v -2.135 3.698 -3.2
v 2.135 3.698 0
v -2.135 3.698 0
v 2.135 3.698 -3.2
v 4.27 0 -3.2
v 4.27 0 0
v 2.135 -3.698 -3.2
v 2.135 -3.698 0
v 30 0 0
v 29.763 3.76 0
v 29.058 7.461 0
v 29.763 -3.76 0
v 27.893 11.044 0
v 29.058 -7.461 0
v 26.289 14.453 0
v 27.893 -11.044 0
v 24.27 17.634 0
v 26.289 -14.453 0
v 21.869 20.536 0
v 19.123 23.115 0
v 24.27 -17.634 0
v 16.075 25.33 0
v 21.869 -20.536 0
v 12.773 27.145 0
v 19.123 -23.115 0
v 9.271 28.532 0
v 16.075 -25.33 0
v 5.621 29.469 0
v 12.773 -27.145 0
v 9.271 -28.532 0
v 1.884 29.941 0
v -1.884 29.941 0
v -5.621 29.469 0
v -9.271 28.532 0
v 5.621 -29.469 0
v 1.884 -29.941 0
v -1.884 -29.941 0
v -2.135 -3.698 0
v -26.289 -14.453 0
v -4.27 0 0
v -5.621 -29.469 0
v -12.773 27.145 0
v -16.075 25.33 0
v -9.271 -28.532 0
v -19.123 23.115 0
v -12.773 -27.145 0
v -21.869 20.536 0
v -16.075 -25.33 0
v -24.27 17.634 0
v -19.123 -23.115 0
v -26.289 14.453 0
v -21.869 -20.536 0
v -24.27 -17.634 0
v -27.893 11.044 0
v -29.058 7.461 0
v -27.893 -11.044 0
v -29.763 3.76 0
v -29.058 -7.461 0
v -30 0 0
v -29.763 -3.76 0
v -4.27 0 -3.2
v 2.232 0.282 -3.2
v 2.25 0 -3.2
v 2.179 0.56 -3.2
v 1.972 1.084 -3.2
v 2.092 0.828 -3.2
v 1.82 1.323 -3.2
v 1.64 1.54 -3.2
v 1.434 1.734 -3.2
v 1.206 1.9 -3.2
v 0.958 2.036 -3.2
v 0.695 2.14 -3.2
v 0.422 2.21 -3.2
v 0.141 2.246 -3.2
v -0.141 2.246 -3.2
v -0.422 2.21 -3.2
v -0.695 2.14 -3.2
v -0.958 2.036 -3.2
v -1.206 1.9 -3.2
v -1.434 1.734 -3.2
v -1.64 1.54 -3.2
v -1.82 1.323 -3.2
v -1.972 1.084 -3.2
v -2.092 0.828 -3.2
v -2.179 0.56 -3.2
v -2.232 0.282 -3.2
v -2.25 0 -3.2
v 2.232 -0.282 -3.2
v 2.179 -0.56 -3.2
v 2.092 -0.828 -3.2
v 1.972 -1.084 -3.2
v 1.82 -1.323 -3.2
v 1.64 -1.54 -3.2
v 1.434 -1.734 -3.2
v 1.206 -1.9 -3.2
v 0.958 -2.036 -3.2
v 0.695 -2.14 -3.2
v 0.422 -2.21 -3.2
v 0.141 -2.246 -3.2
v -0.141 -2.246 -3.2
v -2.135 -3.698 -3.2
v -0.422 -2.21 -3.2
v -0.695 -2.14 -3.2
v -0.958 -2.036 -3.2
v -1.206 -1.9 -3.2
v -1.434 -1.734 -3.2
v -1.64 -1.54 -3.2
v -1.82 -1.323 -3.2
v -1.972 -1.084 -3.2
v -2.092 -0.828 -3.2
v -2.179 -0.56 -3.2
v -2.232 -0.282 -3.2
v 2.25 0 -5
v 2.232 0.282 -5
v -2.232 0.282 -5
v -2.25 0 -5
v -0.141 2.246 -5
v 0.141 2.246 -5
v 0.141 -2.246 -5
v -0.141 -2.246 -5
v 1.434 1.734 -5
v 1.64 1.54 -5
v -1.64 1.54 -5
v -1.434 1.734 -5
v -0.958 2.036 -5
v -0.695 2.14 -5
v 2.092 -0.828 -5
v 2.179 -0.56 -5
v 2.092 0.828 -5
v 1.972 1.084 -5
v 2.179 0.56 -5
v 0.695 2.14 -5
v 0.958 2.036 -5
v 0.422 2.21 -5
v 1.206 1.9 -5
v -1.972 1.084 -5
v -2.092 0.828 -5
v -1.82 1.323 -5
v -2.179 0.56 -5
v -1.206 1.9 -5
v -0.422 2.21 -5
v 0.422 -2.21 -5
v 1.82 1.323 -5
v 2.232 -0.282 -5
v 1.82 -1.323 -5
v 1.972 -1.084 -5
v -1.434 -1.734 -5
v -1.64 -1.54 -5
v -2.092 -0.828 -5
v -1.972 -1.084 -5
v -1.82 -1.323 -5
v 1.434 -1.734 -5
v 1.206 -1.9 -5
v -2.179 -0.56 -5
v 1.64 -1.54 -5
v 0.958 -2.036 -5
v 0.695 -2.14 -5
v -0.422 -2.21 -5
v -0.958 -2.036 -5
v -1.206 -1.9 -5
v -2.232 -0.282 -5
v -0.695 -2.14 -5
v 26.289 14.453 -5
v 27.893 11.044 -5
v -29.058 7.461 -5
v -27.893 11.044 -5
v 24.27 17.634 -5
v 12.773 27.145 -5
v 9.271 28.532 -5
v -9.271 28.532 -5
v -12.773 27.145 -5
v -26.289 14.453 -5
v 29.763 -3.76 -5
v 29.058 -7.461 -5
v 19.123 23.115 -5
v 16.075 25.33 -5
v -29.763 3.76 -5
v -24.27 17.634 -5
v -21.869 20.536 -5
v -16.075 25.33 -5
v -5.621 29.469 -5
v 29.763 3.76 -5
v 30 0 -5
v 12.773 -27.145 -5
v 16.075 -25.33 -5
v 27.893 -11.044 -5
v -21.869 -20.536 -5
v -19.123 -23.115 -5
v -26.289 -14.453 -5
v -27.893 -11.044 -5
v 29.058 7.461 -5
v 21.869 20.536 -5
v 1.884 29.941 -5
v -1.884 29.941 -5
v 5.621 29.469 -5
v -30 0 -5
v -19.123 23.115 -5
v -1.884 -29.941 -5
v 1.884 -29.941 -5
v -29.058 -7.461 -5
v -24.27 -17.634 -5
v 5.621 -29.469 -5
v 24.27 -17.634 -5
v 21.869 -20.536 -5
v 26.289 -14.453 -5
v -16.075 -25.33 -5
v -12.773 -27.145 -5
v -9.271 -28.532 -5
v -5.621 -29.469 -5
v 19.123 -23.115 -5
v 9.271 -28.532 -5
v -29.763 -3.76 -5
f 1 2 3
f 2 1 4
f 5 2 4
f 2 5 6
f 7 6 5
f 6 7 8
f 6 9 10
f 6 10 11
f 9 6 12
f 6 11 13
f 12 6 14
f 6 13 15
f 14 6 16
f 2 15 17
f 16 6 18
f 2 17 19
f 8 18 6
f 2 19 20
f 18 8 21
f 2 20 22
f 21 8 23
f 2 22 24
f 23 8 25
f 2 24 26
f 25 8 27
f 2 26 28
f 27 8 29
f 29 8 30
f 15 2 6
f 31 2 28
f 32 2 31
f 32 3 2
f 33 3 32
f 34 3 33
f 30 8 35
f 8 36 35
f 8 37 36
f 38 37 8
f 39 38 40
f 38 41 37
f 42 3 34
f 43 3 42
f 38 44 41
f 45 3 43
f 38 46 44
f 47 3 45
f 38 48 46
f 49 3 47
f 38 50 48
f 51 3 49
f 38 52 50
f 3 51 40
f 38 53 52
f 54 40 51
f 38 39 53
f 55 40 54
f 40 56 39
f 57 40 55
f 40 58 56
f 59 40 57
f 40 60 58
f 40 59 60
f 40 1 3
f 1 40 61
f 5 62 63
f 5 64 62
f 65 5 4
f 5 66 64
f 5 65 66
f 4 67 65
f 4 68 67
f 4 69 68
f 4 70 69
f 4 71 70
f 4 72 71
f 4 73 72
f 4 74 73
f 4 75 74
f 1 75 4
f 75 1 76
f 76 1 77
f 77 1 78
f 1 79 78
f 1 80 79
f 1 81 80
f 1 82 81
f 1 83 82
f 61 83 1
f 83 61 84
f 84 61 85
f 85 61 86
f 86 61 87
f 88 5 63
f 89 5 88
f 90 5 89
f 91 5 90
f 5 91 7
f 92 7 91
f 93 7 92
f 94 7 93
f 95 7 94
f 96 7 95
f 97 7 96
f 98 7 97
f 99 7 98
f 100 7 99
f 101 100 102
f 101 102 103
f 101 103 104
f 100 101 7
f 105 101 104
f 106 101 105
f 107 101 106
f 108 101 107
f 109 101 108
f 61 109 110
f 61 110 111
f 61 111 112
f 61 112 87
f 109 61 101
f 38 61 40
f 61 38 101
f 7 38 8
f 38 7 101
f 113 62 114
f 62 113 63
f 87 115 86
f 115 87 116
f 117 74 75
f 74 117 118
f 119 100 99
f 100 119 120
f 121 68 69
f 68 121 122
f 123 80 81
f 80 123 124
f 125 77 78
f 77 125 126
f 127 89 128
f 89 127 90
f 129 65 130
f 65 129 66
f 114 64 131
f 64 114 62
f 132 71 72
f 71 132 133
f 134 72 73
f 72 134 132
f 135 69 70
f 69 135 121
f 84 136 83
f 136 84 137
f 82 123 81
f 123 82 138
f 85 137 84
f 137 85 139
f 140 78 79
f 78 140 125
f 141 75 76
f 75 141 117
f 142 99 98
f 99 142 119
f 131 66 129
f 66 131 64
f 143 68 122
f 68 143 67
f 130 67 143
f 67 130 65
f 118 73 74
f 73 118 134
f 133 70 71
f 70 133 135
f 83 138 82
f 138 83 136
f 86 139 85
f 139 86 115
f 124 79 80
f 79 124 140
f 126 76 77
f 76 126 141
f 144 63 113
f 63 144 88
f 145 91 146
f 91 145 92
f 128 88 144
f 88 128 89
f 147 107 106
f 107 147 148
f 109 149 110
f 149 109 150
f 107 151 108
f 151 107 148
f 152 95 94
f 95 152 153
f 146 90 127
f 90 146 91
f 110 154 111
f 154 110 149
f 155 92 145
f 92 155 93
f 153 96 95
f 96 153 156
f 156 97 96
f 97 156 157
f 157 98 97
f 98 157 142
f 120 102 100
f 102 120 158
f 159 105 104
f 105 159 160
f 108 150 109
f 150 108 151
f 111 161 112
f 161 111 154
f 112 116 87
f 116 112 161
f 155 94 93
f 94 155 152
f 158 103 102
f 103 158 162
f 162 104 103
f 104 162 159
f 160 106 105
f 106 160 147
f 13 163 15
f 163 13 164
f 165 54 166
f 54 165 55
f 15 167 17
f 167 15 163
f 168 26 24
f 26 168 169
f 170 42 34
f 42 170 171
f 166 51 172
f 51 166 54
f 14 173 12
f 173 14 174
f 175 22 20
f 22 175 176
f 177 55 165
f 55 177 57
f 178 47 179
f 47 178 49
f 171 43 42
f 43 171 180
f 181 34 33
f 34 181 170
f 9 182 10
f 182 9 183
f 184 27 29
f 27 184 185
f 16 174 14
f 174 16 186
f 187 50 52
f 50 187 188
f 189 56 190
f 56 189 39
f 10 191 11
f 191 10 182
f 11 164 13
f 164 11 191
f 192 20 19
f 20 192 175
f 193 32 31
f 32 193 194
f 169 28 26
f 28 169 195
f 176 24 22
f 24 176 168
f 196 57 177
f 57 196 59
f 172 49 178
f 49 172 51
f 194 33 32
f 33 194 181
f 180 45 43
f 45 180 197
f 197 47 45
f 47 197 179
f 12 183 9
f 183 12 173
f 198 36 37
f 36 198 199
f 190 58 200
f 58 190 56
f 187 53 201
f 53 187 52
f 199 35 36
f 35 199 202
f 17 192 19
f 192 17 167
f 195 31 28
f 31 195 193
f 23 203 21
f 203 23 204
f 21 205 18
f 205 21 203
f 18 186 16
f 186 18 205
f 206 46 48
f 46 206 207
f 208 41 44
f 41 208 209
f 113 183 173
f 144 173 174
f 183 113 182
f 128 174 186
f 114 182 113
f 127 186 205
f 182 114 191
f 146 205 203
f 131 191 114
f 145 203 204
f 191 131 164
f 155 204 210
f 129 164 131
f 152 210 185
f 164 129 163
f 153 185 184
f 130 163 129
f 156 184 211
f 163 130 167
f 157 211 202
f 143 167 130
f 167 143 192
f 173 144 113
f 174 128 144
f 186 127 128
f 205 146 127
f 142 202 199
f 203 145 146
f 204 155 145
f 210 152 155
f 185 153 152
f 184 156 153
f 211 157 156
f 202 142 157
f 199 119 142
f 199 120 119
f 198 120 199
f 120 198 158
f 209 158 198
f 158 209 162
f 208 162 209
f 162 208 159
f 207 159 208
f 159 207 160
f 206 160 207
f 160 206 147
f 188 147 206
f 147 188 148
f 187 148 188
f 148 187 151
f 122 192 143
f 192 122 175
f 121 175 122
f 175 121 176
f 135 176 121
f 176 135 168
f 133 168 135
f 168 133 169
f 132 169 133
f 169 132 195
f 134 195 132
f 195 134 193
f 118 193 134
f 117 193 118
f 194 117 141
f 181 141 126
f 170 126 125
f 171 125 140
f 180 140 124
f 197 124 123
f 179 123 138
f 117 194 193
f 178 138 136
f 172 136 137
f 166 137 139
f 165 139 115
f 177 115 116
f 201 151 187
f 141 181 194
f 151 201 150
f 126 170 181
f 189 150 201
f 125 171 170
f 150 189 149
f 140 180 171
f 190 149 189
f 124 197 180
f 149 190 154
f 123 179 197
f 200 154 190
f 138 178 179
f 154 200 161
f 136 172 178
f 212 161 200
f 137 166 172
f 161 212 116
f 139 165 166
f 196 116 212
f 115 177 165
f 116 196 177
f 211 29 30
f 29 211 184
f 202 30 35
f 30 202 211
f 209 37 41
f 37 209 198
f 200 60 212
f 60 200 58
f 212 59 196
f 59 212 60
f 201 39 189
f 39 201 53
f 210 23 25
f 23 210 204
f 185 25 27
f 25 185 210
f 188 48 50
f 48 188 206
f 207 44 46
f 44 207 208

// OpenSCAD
$fn = 50;


difference() {
	union() {
		translate(v = [0, 0, -5.0000000000]) {
			cylinder(h = 5.0000000000, r = 30.0000000000);
		}
	}
	union() {
		translate(v = [0, 0, 0]) {
			rotate(a = [0, 0, 0]) {
				difference() {
					union() {
						translate(v = [0, 0, -3.2000000000]) {
							linear_extrude(height = 3.2000000000) {
								polygon(points = [[4.2698000000, 0.0000000000], [2.1349000000, 3.6977552691], [-2.1349000000, 3.6977552691], [-4.2698000000, 0.0000000000], [-2.1349000000, -3.6977552691], [2.1349000000, -3.6977552691]]);
							}
						}
					}
					union();
				}
			}
		}
		#translate(v = [0, 0, -100.0000000000]) {
			cylinder(h = 200, r = 2.2500000000);
		}
	}
}
